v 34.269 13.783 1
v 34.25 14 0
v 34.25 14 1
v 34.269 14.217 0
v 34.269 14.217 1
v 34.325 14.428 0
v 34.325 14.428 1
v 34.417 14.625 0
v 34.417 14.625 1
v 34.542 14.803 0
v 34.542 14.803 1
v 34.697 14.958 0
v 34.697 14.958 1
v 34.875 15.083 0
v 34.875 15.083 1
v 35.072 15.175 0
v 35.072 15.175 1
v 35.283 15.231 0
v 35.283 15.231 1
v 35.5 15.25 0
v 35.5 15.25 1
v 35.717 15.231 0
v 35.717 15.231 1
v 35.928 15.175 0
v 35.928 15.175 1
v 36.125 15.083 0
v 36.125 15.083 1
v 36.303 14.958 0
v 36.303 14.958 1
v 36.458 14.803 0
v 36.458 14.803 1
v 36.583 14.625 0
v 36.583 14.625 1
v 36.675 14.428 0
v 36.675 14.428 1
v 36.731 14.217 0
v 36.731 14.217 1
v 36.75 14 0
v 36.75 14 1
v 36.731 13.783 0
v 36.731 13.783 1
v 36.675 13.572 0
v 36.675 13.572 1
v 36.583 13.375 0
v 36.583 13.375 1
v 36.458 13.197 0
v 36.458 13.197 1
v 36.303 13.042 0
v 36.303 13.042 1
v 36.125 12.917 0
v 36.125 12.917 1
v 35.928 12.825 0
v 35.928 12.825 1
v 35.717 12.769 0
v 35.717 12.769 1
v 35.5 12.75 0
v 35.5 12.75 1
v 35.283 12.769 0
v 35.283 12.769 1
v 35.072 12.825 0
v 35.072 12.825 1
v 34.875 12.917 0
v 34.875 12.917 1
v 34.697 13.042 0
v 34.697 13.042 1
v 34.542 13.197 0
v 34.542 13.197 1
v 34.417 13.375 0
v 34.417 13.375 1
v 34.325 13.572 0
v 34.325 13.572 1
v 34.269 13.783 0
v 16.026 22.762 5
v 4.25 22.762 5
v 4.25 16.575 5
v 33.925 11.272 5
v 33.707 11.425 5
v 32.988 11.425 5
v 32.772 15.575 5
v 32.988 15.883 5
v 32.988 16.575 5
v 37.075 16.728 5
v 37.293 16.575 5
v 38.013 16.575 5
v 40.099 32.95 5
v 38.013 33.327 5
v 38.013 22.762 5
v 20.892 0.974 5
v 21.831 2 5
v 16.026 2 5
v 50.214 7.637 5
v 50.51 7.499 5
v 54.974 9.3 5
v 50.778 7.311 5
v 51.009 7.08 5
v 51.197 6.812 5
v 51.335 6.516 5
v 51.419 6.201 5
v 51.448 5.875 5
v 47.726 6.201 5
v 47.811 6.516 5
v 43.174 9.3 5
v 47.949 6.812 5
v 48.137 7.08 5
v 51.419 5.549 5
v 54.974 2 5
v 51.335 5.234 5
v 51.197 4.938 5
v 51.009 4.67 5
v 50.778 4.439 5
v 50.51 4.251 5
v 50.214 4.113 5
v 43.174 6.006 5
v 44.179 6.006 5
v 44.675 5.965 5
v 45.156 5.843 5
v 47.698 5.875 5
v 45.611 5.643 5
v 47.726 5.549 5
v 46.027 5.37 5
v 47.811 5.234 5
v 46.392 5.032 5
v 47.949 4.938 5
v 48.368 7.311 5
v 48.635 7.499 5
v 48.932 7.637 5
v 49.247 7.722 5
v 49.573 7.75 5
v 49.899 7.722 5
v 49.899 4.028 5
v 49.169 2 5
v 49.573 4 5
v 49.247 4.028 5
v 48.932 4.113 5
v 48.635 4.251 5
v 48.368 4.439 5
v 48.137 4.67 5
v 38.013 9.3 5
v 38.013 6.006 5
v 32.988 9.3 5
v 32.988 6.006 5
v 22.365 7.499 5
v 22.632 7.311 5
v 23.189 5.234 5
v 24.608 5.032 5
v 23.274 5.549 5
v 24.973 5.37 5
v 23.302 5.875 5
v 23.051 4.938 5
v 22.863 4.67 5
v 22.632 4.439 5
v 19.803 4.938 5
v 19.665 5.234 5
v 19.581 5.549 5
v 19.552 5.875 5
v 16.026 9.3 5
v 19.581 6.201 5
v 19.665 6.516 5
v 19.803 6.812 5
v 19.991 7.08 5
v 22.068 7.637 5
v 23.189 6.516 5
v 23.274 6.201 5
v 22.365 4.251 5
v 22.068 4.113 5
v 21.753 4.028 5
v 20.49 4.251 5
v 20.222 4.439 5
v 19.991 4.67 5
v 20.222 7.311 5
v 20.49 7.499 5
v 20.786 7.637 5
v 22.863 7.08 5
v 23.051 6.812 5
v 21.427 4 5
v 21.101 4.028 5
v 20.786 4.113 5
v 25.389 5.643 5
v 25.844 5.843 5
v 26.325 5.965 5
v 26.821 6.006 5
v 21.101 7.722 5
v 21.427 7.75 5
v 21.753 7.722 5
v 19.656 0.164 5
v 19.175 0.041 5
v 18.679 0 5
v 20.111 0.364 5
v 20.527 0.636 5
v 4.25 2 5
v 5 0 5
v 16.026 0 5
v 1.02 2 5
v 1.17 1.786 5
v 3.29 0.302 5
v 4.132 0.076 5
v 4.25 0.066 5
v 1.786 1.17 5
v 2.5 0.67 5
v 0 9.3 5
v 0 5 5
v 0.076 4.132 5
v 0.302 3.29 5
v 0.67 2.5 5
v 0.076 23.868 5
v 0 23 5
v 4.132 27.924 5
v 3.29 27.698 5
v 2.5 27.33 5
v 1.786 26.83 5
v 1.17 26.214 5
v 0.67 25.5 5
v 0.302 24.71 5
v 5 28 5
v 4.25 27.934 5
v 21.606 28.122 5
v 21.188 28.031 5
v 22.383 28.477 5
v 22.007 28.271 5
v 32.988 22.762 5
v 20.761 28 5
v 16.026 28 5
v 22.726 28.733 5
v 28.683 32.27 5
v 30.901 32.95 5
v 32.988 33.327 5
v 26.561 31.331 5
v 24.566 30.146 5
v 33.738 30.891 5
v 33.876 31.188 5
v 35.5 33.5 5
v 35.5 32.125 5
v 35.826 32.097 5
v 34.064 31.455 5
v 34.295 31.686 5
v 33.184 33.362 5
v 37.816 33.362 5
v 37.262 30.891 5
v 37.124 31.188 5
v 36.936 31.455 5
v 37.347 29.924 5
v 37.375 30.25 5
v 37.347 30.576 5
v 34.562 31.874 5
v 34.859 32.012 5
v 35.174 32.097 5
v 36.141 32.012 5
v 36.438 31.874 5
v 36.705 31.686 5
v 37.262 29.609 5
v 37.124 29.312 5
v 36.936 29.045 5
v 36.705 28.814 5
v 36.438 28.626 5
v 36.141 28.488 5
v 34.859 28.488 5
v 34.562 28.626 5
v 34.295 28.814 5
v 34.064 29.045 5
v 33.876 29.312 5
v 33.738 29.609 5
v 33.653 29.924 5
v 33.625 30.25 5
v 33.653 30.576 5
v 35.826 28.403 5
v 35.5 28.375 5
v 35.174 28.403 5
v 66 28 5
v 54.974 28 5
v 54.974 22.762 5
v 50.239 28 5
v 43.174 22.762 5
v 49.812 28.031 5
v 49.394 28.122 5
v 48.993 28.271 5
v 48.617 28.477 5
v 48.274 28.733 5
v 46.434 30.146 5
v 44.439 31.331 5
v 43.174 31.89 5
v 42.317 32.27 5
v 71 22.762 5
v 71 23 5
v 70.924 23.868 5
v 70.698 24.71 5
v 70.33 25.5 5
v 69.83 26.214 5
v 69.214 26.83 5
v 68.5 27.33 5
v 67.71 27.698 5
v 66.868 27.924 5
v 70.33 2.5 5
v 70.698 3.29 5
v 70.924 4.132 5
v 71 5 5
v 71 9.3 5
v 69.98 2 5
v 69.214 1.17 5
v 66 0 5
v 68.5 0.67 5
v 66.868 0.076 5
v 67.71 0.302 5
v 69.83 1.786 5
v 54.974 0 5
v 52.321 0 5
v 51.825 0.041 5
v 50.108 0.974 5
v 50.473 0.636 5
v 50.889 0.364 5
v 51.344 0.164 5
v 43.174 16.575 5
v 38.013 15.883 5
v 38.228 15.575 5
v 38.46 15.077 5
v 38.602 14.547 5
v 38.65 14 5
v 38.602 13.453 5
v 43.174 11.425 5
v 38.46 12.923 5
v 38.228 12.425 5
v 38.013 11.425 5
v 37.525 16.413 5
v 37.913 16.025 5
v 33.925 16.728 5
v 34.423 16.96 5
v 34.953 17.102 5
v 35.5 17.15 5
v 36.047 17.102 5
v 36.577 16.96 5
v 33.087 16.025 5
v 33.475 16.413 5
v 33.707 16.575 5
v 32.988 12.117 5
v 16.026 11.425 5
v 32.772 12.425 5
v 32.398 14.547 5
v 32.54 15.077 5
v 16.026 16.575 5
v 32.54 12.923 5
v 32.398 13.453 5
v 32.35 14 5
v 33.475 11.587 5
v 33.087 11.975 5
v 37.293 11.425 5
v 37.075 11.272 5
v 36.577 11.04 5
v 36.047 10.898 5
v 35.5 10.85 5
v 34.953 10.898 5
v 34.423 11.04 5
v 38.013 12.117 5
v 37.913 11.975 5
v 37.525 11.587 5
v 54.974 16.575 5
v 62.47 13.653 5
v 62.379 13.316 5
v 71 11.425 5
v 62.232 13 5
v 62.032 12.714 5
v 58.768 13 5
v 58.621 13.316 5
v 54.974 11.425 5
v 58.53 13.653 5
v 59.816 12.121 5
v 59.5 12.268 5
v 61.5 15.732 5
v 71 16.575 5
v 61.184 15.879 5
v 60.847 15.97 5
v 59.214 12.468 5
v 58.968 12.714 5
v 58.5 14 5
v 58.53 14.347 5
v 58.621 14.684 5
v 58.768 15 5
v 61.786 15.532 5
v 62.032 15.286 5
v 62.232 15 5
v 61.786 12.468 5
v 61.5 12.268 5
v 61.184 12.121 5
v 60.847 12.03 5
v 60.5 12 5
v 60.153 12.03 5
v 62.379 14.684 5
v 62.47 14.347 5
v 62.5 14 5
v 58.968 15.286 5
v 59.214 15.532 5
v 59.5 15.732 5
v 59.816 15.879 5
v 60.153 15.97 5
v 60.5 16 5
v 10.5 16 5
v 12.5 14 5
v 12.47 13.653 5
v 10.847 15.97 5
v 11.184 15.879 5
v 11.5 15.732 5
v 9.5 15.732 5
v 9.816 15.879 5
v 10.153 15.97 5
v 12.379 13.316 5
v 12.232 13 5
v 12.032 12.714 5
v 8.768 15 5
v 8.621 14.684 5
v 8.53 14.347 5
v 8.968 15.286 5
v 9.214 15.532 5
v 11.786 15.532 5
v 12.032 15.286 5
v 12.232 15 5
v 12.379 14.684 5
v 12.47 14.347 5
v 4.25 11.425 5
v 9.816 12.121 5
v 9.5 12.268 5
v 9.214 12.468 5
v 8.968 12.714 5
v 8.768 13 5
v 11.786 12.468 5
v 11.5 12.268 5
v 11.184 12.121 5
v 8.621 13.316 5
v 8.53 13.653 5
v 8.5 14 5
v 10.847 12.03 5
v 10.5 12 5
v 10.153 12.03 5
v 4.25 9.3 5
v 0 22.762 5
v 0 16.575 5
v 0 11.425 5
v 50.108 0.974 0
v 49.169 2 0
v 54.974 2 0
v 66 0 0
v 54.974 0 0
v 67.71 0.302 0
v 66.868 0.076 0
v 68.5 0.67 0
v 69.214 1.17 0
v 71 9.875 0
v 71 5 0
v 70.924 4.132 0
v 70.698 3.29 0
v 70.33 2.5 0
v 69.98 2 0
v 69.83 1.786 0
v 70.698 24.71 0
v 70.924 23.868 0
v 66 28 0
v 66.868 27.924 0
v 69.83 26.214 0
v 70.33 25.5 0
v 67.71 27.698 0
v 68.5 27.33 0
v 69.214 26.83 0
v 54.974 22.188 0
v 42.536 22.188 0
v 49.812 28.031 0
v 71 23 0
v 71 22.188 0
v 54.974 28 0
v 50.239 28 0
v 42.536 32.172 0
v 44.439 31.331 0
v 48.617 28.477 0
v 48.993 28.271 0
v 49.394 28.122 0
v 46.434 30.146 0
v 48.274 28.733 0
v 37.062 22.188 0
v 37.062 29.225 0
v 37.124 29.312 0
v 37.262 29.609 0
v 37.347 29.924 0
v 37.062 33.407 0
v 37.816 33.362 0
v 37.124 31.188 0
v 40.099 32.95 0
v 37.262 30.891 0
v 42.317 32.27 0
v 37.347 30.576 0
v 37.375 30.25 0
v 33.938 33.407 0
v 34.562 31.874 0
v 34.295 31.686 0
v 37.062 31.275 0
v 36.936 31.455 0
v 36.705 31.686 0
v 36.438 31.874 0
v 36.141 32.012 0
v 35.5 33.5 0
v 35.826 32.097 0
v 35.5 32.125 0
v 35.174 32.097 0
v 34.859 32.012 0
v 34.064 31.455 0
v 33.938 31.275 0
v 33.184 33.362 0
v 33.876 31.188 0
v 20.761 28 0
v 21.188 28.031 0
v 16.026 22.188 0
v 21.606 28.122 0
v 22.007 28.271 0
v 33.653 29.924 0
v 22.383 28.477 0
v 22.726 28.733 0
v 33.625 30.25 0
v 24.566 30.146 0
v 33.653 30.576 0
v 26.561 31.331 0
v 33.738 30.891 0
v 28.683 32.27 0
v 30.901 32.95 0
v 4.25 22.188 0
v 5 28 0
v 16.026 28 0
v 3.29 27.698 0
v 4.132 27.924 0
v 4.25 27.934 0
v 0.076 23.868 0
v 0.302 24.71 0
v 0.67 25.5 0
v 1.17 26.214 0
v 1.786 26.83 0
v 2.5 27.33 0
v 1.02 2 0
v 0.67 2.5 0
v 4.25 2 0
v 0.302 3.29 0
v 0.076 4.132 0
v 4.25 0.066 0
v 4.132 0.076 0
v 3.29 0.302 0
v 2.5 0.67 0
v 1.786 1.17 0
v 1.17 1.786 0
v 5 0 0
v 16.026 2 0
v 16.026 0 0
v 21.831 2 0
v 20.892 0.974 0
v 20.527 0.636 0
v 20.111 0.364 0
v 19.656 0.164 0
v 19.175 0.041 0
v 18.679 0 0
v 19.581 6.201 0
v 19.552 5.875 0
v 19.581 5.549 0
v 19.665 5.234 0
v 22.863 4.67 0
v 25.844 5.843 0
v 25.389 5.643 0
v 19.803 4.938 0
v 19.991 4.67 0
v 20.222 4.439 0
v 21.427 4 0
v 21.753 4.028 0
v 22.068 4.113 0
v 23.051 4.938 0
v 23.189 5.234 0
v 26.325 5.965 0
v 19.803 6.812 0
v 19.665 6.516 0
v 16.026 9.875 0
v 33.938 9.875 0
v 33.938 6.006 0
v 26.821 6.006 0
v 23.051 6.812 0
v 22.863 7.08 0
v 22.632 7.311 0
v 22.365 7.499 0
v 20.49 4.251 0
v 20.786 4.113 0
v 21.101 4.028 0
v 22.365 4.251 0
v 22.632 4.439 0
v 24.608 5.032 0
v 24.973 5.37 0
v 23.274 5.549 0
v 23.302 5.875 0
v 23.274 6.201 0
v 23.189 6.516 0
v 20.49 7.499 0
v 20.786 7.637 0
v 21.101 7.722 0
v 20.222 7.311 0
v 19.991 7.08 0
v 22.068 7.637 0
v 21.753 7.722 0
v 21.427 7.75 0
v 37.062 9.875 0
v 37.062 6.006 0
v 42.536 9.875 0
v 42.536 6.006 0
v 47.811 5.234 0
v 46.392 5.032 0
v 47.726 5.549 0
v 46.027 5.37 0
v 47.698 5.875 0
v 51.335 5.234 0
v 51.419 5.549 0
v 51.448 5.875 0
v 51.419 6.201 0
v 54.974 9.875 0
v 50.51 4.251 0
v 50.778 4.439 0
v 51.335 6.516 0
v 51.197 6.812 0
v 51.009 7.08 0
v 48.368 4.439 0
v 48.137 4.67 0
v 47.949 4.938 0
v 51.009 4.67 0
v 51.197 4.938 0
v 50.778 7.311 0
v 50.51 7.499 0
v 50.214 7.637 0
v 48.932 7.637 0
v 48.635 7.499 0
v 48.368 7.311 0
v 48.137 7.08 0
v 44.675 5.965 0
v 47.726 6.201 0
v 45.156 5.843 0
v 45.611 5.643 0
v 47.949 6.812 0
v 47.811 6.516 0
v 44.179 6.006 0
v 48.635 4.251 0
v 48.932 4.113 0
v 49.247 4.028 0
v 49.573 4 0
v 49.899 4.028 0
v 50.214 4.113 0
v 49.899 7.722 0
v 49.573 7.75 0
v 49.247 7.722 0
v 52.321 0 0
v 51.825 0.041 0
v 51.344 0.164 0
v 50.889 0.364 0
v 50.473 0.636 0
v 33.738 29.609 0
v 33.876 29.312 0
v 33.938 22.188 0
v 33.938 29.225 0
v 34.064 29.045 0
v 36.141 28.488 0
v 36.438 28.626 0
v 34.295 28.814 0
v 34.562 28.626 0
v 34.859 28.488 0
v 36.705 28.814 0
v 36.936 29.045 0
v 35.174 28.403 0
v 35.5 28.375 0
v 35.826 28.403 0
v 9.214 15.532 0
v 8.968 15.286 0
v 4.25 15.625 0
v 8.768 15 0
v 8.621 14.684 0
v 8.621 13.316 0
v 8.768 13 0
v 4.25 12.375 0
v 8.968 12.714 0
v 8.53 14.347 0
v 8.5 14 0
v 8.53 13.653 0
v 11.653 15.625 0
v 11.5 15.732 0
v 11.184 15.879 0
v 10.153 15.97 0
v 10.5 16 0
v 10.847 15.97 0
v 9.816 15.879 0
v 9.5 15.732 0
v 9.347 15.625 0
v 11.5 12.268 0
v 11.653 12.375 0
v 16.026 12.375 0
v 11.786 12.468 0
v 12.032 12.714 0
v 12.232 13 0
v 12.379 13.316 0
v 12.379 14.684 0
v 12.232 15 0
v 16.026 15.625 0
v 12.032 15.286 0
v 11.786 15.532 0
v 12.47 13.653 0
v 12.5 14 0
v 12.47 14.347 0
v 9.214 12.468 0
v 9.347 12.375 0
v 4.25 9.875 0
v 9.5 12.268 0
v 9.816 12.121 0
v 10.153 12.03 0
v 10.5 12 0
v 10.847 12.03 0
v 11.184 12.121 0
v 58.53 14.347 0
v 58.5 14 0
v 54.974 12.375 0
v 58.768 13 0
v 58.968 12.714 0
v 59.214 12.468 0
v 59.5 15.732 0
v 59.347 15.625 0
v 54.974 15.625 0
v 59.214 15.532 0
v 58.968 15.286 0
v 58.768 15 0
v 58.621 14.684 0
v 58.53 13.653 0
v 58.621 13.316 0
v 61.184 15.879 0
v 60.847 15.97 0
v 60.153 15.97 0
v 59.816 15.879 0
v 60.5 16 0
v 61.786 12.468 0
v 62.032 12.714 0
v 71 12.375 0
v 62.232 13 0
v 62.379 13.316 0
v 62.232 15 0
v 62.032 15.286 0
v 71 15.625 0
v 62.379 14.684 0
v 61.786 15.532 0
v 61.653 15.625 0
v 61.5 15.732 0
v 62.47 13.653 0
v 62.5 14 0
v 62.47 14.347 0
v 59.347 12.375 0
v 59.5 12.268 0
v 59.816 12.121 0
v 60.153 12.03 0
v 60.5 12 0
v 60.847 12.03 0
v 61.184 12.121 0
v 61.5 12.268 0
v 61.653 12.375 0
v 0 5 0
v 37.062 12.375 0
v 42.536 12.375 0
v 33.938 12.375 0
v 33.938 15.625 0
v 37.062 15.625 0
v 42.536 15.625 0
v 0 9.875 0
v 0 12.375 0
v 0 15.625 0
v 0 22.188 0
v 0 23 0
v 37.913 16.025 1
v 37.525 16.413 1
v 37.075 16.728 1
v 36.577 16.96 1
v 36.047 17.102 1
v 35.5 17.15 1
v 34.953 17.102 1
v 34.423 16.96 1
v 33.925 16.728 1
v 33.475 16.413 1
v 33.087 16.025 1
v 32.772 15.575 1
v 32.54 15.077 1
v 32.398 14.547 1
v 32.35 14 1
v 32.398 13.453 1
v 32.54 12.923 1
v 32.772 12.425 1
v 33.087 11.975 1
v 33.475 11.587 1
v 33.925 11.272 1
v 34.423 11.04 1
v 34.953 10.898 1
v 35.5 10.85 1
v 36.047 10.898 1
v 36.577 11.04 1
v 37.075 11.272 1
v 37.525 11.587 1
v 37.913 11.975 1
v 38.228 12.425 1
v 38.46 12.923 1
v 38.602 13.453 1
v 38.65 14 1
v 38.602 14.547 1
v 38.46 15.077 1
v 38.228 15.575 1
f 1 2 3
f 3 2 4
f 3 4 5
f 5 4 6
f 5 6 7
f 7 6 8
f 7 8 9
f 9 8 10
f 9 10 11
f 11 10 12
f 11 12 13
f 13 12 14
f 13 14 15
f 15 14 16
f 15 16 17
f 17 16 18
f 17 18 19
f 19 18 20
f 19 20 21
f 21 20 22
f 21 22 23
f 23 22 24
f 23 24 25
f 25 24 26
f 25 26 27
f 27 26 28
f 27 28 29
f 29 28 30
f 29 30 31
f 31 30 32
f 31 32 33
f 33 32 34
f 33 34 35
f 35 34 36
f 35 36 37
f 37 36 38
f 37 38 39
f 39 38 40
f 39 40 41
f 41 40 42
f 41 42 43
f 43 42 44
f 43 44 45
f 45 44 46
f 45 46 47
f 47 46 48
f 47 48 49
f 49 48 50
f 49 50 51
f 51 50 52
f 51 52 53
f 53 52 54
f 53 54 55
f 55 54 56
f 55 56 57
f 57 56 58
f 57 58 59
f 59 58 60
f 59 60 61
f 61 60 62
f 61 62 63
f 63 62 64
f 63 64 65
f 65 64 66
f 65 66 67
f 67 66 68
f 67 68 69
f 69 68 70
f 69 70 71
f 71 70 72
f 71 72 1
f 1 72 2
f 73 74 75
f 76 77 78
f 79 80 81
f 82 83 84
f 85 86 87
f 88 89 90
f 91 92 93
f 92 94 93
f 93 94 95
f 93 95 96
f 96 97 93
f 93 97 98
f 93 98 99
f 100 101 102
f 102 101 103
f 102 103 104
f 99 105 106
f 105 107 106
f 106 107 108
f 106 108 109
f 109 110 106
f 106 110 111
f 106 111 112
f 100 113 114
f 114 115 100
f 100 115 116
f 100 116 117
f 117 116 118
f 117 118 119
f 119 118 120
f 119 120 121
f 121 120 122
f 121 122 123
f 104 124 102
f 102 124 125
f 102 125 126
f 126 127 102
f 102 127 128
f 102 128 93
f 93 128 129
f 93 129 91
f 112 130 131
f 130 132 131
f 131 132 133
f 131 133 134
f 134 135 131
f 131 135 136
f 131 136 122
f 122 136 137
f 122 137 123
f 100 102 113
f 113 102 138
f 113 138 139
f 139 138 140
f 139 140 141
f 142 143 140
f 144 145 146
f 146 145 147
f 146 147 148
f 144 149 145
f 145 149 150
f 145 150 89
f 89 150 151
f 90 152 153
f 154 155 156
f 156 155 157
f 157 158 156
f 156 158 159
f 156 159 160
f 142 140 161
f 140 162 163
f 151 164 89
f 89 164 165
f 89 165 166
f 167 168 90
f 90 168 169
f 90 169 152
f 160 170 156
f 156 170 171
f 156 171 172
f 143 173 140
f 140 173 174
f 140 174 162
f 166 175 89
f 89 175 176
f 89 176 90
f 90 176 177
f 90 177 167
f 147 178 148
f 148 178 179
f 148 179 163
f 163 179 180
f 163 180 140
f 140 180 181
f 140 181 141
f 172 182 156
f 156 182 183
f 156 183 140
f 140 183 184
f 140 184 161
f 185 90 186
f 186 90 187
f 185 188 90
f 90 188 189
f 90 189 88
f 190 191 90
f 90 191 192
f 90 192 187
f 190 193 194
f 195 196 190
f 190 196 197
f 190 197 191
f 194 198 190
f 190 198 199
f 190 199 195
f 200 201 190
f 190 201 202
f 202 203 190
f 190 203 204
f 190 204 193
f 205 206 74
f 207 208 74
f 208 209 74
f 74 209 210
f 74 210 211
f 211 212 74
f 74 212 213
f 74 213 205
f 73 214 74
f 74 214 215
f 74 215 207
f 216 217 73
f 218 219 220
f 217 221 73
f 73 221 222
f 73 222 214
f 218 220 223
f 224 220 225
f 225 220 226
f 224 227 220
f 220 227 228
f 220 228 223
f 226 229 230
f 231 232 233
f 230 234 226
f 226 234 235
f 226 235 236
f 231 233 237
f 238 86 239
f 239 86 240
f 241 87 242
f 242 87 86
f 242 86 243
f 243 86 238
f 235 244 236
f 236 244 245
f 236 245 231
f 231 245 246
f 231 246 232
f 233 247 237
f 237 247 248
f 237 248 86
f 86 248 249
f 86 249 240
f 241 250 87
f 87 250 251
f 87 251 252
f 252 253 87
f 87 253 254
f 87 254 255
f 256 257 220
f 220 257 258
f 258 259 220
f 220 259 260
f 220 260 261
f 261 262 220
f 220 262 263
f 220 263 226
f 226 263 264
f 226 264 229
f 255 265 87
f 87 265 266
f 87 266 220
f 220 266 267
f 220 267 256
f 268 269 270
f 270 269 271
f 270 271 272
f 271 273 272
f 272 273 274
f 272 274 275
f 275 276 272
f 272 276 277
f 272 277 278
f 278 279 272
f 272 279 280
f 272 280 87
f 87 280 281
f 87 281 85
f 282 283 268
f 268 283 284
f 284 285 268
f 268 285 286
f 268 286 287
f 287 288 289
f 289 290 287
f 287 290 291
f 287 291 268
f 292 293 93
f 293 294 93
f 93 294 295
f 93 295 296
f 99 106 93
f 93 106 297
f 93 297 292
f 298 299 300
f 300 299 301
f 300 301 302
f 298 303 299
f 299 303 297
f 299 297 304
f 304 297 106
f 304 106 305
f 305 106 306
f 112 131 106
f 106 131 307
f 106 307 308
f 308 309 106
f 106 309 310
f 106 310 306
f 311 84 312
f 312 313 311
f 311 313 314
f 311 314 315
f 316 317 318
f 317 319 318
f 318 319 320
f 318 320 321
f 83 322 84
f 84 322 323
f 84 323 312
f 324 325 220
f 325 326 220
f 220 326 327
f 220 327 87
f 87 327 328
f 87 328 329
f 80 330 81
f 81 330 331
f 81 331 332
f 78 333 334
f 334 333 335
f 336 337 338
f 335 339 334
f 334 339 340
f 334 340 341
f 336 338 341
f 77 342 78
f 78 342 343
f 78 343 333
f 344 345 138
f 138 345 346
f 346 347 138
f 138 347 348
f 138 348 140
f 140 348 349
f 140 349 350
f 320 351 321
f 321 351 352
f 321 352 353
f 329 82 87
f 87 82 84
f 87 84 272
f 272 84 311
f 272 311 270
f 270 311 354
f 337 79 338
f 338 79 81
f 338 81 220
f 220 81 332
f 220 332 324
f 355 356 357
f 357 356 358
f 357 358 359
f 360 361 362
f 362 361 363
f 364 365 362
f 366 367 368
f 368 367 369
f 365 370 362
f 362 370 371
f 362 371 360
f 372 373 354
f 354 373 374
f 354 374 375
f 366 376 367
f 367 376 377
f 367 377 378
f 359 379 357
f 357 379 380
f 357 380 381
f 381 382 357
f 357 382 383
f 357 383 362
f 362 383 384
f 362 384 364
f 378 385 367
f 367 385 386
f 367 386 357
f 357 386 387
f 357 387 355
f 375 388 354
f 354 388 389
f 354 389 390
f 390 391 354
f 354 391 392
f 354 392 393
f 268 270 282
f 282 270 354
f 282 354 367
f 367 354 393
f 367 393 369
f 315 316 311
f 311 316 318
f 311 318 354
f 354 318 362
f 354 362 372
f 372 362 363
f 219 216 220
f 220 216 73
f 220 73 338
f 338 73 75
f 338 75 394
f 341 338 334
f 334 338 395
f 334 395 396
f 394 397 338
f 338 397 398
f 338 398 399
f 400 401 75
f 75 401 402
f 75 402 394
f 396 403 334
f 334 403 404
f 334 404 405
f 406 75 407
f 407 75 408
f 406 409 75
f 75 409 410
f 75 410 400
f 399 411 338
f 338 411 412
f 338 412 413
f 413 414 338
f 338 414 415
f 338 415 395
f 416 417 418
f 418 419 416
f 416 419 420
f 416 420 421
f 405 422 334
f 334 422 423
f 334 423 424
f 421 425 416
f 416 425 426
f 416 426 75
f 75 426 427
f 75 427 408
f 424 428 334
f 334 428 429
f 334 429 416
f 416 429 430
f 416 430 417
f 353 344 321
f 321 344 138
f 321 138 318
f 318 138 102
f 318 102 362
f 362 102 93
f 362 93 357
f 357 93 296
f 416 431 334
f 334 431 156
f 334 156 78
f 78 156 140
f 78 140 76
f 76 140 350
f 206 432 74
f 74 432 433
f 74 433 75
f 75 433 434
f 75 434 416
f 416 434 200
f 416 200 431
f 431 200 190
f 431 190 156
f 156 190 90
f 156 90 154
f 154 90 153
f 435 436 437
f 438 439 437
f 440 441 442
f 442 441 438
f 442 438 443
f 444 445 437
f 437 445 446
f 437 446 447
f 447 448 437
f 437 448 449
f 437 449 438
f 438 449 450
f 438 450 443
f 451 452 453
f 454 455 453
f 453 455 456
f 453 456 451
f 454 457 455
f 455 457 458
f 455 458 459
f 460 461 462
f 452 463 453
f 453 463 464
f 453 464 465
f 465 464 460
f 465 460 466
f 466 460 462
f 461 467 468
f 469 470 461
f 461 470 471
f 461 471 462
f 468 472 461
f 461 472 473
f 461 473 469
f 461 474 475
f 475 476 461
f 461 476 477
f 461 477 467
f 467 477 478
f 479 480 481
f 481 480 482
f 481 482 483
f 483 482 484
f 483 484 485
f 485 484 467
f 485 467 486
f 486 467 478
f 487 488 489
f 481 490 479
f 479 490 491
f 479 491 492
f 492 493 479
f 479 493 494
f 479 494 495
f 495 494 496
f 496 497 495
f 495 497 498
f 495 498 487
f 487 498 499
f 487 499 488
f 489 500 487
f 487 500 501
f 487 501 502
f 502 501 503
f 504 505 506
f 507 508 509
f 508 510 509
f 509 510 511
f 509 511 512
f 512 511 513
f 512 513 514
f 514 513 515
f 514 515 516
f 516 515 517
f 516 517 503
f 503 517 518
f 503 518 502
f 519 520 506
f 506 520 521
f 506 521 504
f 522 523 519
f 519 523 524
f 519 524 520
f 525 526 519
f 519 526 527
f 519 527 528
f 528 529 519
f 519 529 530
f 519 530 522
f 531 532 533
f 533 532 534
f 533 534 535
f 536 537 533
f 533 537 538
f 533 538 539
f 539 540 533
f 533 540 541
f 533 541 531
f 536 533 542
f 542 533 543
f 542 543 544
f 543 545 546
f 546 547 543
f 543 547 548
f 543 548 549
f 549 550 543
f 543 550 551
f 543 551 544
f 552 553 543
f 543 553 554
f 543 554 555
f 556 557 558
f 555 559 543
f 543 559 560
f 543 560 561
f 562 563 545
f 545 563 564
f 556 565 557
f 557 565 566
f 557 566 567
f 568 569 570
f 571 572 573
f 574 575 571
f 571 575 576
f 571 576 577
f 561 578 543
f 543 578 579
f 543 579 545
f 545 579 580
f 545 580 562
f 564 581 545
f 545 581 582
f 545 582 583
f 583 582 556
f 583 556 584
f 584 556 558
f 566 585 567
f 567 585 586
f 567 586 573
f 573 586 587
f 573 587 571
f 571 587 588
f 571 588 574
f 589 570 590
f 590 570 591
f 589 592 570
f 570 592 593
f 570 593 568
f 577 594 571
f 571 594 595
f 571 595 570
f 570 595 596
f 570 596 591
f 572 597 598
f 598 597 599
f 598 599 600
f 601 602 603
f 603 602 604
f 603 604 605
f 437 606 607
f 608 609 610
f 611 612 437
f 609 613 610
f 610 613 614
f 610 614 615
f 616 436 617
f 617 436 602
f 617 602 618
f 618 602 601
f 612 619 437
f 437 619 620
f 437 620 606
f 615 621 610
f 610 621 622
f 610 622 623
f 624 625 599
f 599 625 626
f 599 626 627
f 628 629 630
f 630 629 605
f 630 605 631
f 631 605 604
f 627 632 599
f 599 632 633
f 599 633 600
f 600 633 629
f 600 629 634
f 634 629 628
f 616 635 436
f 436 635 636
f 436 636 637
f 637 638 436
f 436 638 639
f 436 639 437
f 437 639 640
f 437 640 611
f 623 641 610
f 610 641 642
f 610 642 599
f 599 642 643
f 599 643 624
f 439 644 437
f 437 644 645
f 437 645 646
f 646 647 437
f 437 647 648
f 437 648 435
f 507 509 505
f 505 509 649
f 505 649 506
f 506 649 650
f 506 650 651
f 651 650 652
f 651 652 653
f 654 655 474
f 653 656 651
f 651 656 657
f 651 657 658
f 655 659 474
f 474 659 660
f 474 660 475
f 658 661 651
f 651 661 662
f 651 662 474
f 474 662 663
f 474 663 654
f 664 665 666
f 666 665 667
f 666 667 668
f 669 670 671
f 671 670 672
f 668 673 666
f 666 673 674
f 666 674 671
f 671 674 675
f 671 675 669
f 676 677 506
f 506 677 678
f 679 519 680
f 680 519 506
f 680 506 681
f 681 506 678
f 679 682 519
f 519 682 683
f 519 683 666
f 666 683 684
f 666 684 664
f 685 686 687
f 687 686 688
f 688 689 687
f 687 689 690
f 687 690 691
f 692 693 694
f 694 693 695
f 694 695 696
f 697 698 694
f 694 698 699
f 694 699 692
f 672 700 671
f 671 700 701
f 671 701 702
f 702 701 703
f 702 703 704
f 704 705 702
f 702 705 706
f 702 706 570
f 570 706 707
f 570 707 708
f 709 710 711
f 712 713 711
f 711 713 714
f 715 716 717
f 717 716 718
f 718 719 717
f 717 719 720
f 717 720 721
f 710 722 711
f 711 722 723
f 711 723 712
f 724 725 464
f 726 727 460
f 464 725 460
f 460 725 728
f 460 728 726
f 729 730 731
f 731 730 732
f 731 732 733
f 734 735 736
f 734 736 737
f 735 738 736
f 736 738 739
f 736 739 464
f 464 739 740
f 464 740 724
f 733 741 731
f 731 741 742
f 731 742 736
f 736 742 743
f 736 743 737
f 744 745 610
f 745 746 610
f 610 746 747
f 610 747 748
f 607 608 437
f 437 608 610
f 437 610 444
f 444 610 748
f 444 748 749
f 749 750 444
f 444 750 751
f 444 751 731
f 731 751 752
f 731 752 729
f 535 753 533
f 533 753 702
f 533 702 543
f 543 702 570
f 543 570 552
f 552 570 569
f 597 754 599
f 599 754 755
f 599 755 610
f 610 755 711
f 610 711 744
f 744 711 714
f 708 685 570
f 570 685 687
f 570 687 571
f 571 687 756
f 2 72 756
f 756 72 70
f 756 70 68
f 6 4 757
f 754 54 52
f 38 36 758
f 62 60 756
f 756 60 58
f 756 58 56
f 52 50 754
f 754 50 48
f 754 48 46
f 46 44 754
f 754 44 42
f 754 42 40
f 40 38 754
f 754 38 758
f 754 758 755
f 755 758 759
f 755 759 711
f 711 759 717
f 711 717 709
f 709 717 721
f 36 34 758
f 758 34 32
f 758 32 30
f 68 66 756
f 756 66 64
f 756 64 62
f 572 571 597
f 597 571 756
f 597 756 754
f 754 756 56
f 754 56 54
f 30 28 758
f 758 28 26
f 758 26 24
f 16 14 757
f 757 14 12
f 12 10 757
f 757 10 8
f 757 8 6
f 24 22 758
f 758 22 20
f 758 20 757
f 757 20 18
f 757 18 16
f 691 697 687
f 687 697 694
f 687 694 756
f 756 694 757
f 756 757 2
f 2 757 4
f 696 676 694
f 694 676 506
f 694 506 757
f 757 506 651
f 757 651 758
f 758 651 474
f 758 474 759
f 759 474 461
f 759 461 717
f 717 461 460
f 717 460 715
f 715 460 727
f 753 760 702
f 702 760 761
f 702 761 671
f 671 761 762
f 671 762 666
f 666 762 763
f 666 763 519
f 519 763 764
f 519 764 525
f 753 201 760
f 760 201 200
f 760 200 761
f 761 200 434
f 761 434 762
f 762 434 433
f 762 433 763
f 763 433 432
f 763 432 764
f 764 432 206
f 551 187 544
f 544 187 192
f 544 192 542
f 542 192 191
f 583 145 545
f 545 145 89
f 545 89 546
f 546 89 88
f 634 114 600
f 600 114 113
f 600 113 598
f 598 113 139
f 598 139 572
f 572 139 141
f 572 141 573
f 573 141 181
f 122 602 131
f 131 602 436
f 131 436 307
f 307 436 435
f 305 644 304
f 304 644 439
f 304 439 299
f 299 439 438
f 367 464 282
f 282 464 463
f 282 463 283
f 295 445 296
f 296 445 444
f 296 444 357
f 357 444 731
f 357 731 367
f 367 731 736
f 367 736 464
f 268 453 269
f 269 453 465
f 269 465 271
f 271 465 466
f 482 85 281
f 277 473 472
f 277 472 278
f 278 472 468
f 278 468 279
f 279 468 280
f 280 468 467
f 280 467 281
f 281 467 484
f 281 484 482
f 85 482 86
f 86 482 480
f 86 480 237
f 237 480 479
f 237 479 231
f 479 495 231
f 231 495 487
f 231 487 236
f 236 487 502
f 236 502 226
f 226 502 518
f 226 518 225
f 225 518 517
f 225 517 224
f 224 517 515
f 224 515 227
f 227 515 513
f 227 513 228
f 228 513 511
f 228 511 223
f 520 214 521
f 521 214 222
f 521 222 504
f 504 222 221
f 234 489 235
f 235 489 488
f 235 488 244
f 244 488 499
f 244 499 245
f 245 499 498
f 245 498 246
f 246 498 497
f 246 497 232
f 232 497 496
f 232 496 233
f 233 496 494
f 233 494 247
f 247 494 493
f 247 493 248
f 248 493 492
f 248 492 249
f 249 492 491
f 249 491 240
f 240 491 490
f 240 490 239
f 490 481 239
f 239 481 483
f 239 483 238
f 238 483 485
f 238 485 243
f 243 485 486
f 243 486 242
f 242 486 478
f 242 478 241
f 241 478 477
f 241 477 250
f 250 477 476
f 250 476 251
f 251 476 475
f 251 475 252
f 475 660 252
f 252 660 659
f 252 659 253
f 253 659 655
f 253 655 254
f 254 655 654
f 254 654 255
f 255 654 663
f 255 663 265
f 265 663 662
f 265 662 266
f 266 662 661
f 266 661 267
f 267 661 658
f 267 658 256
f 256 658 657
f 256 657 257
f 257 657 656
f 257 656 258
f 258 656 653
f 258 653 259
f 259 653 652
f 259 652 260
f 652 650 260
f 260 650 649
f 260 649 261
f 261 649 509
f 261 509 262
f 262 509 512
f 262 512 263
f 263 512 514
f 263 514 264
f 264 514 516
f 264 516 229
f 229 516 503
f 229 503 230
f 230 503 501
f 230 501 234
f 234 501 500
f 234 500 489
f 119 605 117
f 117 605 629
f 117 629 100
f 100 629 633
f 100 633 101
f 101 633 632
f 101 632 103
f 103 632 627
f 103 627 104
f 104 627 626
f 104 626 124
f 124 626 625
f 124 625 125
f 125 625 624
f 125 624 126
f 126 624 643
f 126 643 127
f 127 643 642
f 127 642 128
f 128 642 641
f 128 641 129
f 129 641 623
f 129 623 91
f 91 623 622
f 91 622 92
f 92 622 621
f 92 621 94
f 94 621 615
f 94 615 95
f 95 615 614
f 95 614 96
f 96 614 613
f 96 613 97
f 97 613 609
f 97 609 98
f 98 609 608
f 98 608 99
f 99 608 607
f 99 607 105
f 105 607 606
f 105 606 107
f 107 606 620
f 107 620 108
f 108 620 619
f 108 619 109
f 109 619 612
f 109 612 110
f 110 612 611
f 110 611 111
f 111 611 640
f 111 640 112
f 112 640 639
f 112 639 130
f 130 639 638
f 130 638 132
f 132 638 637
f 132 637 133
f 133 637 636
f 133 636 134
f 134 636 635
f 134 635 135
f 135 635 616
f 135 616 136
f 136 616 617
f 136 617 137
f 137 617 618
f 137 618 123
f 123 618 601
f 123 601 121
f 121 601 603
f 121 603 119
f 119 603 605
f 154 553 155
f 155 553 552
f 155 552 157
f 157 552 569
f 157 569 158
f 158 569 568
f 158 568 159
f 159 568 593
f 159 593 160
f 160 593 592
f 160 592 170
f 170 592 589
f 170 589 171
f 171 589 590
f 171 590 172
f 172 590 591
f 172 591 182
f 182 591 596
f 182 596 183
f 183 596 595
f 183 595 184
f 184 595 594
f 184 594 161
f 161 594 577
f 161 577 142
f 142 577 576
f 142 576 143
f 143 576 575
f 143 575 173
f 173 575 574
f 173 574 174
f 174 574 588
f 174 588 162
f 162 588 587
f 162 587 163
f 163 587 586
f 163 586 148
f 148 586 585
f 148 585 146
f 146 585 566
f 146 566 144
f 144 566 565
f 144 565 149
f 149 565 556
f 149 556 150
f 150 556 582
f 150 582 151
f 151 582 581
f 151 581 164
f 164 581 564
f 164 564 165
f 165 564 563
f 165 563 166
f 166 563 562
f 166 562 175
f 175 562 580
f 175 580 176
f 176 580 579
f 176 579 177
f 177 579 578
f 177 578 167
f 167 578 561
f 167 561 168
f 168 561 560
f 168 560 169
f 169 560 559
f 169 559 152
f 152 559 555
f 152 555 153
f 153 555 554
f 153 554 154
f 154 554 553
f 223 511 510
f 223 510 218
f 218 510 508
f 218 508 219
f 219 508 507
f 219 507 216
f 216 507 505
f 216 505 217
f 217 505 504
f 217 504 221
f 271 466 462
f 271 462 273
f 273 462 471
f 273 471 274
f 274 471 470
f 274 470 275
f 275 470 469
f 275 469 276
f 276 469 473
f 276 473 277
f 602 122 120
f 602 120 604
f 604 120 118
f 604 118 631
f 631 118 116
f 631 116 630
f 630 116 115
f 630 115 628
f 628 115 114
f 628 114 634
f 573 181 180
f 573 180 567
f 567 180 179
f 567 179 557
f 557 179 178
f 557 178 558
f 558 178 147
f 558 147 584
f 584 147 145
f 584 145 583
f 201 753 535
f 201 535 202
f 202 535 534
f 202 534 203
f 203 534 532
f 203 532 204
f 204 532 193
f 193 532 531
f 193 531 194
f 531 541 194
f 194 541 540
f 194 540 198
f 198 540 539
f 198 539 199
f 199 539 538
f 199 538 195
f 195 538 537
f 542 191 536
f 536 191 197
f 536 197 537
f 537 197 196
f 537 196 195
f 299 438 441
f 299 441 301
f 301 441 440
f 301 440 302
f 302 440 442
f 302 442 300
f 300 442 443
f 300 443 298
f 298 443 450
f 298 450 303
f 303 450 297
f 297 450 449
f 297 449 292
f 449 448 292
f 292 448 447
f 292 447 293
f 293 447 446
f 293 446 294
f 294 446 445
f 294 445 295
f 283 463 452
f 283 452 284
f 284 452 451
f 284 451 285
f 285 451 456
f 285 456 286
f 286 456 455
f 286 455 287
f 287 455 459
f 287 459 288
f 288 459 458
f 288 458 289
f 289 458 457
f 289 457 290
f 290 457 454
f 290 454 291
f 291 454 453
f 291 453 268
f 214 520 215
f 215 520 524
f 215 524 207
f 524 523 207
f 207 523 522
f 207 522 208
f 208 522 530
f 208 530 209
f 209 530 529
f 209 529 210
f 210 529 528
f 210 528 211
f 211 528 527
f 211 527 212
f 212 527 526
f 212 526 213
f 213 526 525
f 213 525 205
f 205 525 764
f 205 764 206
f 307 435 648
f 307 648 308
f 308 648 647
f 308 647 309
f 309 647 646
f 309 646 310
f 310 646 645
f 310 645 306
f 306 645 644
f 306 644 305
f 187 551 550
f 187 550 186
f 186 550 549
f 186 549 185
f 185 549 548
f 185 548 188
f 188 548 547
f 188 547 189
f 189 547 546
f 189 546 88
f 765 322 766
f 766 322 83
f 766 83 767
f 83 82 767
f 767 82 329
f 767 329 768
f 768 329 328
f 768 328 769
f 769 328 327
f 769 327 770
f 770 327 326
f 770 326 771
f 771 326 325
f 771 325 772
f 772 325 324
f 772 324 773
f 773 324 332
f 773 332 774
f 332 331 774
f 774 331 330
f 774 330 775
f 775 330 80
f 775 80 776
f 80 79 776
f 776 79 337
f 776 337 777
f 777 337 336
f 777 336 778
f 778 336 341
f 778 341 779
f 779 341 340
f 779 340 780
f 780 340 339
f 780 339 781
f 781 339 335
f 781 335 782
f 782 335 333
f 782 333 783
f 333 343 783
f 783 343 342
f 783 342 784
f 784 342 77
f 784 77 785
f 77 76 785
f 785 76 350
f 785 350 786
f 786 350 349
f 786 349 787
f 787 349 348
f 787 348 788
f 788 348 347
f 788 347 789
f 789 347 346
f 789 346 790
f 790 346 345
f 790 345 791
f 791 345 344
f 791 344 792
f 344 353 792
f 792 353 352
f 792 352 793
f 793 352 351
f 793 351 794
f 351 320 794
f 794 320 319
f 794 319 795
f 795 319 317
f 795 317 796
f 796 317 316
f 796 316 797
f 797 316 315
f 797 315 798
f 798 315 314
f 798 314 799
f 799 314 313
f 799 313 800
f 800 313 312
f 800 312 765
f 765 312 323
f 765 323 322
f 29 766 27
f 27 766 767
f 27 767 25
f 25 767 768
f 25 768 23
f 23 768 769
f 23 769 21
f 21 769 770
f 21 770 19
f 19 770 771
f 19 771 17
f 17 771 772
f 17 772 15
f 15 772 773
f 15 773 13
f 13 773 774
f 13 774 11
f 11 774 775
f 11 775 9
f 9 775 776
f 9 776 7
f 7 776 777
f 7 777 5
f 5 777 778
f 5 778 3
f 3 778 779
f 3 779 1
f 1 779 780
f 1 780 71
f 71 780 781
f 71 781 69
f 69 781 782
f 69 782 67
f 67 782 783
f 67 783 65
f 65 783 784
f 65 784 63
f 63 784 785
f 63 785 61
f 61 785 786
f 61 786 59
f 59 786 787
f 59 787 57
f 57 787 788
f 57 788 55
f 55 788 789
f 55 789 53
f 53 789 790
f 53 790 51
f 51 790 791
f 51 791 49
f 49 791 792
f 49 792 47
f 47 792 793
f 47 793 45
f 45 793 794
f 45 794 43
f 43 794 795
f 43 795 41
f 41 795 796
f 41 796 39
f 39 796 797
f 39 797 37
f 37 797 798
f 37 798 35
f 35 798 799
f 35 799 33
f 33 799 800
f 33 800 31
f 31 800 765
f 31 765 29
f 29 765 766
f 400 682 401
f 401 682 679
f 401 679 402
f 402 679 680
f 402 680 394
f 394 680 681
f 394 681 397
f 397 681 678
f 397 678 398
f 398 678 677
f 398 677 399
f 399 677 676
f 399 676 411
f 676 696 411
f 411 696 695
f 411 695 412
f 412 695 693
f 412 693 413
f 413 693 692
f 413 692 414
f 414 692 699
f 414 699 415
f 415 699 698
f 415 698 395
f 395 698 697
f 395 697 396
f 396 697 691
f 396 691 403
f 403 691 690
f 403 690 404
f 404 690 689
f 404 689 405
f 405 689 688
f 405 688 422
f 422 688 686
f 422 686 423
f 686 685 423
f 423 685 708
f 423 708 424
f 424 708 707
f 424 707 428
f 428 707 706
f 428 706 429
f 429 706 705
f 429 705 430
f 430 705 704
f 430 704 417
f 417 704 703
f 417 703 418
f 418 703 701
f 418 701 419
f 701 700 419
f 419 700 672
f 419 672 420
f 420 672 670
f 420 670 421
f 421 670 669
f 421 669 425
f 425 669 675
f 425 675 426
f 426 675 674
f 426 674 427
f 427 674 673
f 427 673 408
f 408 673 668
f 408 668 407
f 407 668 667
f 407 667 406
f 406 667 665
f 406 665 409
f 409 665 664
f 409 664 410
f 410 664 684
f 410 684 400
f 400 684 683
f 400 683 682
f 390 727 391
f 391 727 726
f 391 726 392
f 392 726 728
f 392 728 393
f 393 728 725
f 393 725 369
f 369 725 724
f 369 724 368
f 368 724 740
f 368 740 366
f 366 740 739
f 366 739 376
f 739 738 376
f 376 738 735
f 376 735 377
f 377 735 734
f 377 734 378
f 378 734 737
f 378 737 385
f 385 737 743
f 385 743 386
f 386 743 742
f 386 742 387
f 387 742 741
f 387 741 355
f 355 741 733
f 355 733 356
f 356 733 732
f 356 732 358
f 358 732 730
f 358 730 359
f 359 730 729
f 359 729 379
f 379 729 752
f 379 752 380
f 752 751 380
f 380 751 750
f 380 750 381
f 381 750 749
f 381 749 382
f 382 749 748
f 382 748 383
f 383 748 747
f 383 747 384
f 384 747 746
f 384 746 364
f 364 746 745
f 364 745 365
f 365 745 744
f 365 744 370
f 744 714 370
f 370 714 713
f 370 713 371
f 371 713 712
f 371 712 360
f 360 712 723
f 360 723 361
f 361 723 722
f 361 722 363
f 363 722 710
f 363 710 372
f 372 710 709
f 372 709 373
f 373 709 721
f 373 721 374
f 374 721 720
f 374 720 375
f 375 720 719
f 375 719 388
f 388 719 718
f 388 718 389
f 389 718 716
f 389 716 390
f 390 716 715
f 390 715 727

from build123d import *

# Parameters (mm, degrees)
SKETCH_1_R          = 1.875
SKETCH_1_R_2        = 1.25
EXTRUDE_1_DEPTH     = 5
FILLET_1_R          = 3
FILLET_2_R          = 5
FILLET_3_R          = 3
SKETCH_2_R          = 3.15
CUT_EXTRUDE_1_DEPTH = 4
SKETCH_3_R          = 2
CUT_EXTRUDE_2_DEPTH = 79.665430781


with BuildPart() as part:
    # Эскиз1 → Бобышка-Вытянуть1 (new body)
    with BuildSketch(Plane.XY):
        with BuildLine():
            Line((0, 0), (20, 0))
            Line((20, 0), (25.5, 6.006432896))
            Line((25.5, 6.006432896), (45.5, 6.006432896))
            Line((45.5, 6.006432896), (51, 0))
            Line((51, 0), (71, 0))
            Line((71, 0), (71, 28))
            Line((71, 28), (49.07387196, 28))
            ThreePointArc((49.07387196, 28), (35.5, 33.5), (21.92612804, 28))
            Line((21.92612804, 28), (0, 28))
            Line((0, 28), (0, 0))
        make_face()
        with Locations((35.5, 30.25)):
            Circle(SKETCH_1_R, mode=Mode.SUBTRACT)
        with Locations((35.5, 14)):
            Circle(SKETCH_1_R_2, mode=Mode.SUBTRACT)
        with Locations((49.572912812, 5.875)):
            Circle(SKETCH_1_R, mode=Mode.SUBTRACT)
        with Locations((21.427087189, 5.875)):
            Circle(SKETCH_1_R, mode=Mode.SUBTRACT)
    extrude(amount=EXTRUDE_1_DEPTH)

    # Скругление1
    fillet_1_edges = [part.edges().sort_by_distance(p)[0] for p in [
        (21.92612804, 28, 2.5),
        (49.07387196, 28, 2.5),
        (45.5, 6.006432896, 2.5),
        (25.5, 6.006432896, 2.5),
    ]]
    fillet(fillet_1_edges, radius=FILLET_1_R)

    # Скругление2
    fillet_2_edges = [part.edges().sort_by_distance(p)[0] for p in [
        (0, 28, 2.5),
        (71, 28, 2.5),
        (71, 0, 2.5),
        (0, 0, 2.5),
    ]]
    fillet(fillet_2_edges, radius=FILLET_2_R)

    # Скругление3
    fillet_3_edges = [part.edges().sort_by_distance(p)[0] for p in [
        (51, 0, 2.5),
        (20, 0, 2.5),
    ]]
    fillet(fillet_3_edges, radius=FILLET_3_R)

    # Эскиз2 → Вырез-Вытянуть1 (cut)
    with BuildSketch(Plane.XY.offset(5)):
        with Locations((35.5, 14)):
            Circle(SKETCH_2_R)
    extrude(amount=-CUT_EXTRUDE_1_DEPTH, mode=Mode.SUBTRACT)

    # Эскиз3 → Вырез-Вытянуть2 (cut, through all)
    with BuildSketch(Plane(origin=(0, 0, 0), x_dir=(-1, 0, 0), z_dir=(0, 0, -1))):
        with Locations((-10.5, 14)):
            Circle(SKETCH_3_R)
        with Locations((-60.5, 14)):
            Circle(SKETCH_3_R)
    extrude(amount=-CUT_EXTRUDE_2_DEPTH, mode=Mode.SUBTRACT)


solid = part.part
